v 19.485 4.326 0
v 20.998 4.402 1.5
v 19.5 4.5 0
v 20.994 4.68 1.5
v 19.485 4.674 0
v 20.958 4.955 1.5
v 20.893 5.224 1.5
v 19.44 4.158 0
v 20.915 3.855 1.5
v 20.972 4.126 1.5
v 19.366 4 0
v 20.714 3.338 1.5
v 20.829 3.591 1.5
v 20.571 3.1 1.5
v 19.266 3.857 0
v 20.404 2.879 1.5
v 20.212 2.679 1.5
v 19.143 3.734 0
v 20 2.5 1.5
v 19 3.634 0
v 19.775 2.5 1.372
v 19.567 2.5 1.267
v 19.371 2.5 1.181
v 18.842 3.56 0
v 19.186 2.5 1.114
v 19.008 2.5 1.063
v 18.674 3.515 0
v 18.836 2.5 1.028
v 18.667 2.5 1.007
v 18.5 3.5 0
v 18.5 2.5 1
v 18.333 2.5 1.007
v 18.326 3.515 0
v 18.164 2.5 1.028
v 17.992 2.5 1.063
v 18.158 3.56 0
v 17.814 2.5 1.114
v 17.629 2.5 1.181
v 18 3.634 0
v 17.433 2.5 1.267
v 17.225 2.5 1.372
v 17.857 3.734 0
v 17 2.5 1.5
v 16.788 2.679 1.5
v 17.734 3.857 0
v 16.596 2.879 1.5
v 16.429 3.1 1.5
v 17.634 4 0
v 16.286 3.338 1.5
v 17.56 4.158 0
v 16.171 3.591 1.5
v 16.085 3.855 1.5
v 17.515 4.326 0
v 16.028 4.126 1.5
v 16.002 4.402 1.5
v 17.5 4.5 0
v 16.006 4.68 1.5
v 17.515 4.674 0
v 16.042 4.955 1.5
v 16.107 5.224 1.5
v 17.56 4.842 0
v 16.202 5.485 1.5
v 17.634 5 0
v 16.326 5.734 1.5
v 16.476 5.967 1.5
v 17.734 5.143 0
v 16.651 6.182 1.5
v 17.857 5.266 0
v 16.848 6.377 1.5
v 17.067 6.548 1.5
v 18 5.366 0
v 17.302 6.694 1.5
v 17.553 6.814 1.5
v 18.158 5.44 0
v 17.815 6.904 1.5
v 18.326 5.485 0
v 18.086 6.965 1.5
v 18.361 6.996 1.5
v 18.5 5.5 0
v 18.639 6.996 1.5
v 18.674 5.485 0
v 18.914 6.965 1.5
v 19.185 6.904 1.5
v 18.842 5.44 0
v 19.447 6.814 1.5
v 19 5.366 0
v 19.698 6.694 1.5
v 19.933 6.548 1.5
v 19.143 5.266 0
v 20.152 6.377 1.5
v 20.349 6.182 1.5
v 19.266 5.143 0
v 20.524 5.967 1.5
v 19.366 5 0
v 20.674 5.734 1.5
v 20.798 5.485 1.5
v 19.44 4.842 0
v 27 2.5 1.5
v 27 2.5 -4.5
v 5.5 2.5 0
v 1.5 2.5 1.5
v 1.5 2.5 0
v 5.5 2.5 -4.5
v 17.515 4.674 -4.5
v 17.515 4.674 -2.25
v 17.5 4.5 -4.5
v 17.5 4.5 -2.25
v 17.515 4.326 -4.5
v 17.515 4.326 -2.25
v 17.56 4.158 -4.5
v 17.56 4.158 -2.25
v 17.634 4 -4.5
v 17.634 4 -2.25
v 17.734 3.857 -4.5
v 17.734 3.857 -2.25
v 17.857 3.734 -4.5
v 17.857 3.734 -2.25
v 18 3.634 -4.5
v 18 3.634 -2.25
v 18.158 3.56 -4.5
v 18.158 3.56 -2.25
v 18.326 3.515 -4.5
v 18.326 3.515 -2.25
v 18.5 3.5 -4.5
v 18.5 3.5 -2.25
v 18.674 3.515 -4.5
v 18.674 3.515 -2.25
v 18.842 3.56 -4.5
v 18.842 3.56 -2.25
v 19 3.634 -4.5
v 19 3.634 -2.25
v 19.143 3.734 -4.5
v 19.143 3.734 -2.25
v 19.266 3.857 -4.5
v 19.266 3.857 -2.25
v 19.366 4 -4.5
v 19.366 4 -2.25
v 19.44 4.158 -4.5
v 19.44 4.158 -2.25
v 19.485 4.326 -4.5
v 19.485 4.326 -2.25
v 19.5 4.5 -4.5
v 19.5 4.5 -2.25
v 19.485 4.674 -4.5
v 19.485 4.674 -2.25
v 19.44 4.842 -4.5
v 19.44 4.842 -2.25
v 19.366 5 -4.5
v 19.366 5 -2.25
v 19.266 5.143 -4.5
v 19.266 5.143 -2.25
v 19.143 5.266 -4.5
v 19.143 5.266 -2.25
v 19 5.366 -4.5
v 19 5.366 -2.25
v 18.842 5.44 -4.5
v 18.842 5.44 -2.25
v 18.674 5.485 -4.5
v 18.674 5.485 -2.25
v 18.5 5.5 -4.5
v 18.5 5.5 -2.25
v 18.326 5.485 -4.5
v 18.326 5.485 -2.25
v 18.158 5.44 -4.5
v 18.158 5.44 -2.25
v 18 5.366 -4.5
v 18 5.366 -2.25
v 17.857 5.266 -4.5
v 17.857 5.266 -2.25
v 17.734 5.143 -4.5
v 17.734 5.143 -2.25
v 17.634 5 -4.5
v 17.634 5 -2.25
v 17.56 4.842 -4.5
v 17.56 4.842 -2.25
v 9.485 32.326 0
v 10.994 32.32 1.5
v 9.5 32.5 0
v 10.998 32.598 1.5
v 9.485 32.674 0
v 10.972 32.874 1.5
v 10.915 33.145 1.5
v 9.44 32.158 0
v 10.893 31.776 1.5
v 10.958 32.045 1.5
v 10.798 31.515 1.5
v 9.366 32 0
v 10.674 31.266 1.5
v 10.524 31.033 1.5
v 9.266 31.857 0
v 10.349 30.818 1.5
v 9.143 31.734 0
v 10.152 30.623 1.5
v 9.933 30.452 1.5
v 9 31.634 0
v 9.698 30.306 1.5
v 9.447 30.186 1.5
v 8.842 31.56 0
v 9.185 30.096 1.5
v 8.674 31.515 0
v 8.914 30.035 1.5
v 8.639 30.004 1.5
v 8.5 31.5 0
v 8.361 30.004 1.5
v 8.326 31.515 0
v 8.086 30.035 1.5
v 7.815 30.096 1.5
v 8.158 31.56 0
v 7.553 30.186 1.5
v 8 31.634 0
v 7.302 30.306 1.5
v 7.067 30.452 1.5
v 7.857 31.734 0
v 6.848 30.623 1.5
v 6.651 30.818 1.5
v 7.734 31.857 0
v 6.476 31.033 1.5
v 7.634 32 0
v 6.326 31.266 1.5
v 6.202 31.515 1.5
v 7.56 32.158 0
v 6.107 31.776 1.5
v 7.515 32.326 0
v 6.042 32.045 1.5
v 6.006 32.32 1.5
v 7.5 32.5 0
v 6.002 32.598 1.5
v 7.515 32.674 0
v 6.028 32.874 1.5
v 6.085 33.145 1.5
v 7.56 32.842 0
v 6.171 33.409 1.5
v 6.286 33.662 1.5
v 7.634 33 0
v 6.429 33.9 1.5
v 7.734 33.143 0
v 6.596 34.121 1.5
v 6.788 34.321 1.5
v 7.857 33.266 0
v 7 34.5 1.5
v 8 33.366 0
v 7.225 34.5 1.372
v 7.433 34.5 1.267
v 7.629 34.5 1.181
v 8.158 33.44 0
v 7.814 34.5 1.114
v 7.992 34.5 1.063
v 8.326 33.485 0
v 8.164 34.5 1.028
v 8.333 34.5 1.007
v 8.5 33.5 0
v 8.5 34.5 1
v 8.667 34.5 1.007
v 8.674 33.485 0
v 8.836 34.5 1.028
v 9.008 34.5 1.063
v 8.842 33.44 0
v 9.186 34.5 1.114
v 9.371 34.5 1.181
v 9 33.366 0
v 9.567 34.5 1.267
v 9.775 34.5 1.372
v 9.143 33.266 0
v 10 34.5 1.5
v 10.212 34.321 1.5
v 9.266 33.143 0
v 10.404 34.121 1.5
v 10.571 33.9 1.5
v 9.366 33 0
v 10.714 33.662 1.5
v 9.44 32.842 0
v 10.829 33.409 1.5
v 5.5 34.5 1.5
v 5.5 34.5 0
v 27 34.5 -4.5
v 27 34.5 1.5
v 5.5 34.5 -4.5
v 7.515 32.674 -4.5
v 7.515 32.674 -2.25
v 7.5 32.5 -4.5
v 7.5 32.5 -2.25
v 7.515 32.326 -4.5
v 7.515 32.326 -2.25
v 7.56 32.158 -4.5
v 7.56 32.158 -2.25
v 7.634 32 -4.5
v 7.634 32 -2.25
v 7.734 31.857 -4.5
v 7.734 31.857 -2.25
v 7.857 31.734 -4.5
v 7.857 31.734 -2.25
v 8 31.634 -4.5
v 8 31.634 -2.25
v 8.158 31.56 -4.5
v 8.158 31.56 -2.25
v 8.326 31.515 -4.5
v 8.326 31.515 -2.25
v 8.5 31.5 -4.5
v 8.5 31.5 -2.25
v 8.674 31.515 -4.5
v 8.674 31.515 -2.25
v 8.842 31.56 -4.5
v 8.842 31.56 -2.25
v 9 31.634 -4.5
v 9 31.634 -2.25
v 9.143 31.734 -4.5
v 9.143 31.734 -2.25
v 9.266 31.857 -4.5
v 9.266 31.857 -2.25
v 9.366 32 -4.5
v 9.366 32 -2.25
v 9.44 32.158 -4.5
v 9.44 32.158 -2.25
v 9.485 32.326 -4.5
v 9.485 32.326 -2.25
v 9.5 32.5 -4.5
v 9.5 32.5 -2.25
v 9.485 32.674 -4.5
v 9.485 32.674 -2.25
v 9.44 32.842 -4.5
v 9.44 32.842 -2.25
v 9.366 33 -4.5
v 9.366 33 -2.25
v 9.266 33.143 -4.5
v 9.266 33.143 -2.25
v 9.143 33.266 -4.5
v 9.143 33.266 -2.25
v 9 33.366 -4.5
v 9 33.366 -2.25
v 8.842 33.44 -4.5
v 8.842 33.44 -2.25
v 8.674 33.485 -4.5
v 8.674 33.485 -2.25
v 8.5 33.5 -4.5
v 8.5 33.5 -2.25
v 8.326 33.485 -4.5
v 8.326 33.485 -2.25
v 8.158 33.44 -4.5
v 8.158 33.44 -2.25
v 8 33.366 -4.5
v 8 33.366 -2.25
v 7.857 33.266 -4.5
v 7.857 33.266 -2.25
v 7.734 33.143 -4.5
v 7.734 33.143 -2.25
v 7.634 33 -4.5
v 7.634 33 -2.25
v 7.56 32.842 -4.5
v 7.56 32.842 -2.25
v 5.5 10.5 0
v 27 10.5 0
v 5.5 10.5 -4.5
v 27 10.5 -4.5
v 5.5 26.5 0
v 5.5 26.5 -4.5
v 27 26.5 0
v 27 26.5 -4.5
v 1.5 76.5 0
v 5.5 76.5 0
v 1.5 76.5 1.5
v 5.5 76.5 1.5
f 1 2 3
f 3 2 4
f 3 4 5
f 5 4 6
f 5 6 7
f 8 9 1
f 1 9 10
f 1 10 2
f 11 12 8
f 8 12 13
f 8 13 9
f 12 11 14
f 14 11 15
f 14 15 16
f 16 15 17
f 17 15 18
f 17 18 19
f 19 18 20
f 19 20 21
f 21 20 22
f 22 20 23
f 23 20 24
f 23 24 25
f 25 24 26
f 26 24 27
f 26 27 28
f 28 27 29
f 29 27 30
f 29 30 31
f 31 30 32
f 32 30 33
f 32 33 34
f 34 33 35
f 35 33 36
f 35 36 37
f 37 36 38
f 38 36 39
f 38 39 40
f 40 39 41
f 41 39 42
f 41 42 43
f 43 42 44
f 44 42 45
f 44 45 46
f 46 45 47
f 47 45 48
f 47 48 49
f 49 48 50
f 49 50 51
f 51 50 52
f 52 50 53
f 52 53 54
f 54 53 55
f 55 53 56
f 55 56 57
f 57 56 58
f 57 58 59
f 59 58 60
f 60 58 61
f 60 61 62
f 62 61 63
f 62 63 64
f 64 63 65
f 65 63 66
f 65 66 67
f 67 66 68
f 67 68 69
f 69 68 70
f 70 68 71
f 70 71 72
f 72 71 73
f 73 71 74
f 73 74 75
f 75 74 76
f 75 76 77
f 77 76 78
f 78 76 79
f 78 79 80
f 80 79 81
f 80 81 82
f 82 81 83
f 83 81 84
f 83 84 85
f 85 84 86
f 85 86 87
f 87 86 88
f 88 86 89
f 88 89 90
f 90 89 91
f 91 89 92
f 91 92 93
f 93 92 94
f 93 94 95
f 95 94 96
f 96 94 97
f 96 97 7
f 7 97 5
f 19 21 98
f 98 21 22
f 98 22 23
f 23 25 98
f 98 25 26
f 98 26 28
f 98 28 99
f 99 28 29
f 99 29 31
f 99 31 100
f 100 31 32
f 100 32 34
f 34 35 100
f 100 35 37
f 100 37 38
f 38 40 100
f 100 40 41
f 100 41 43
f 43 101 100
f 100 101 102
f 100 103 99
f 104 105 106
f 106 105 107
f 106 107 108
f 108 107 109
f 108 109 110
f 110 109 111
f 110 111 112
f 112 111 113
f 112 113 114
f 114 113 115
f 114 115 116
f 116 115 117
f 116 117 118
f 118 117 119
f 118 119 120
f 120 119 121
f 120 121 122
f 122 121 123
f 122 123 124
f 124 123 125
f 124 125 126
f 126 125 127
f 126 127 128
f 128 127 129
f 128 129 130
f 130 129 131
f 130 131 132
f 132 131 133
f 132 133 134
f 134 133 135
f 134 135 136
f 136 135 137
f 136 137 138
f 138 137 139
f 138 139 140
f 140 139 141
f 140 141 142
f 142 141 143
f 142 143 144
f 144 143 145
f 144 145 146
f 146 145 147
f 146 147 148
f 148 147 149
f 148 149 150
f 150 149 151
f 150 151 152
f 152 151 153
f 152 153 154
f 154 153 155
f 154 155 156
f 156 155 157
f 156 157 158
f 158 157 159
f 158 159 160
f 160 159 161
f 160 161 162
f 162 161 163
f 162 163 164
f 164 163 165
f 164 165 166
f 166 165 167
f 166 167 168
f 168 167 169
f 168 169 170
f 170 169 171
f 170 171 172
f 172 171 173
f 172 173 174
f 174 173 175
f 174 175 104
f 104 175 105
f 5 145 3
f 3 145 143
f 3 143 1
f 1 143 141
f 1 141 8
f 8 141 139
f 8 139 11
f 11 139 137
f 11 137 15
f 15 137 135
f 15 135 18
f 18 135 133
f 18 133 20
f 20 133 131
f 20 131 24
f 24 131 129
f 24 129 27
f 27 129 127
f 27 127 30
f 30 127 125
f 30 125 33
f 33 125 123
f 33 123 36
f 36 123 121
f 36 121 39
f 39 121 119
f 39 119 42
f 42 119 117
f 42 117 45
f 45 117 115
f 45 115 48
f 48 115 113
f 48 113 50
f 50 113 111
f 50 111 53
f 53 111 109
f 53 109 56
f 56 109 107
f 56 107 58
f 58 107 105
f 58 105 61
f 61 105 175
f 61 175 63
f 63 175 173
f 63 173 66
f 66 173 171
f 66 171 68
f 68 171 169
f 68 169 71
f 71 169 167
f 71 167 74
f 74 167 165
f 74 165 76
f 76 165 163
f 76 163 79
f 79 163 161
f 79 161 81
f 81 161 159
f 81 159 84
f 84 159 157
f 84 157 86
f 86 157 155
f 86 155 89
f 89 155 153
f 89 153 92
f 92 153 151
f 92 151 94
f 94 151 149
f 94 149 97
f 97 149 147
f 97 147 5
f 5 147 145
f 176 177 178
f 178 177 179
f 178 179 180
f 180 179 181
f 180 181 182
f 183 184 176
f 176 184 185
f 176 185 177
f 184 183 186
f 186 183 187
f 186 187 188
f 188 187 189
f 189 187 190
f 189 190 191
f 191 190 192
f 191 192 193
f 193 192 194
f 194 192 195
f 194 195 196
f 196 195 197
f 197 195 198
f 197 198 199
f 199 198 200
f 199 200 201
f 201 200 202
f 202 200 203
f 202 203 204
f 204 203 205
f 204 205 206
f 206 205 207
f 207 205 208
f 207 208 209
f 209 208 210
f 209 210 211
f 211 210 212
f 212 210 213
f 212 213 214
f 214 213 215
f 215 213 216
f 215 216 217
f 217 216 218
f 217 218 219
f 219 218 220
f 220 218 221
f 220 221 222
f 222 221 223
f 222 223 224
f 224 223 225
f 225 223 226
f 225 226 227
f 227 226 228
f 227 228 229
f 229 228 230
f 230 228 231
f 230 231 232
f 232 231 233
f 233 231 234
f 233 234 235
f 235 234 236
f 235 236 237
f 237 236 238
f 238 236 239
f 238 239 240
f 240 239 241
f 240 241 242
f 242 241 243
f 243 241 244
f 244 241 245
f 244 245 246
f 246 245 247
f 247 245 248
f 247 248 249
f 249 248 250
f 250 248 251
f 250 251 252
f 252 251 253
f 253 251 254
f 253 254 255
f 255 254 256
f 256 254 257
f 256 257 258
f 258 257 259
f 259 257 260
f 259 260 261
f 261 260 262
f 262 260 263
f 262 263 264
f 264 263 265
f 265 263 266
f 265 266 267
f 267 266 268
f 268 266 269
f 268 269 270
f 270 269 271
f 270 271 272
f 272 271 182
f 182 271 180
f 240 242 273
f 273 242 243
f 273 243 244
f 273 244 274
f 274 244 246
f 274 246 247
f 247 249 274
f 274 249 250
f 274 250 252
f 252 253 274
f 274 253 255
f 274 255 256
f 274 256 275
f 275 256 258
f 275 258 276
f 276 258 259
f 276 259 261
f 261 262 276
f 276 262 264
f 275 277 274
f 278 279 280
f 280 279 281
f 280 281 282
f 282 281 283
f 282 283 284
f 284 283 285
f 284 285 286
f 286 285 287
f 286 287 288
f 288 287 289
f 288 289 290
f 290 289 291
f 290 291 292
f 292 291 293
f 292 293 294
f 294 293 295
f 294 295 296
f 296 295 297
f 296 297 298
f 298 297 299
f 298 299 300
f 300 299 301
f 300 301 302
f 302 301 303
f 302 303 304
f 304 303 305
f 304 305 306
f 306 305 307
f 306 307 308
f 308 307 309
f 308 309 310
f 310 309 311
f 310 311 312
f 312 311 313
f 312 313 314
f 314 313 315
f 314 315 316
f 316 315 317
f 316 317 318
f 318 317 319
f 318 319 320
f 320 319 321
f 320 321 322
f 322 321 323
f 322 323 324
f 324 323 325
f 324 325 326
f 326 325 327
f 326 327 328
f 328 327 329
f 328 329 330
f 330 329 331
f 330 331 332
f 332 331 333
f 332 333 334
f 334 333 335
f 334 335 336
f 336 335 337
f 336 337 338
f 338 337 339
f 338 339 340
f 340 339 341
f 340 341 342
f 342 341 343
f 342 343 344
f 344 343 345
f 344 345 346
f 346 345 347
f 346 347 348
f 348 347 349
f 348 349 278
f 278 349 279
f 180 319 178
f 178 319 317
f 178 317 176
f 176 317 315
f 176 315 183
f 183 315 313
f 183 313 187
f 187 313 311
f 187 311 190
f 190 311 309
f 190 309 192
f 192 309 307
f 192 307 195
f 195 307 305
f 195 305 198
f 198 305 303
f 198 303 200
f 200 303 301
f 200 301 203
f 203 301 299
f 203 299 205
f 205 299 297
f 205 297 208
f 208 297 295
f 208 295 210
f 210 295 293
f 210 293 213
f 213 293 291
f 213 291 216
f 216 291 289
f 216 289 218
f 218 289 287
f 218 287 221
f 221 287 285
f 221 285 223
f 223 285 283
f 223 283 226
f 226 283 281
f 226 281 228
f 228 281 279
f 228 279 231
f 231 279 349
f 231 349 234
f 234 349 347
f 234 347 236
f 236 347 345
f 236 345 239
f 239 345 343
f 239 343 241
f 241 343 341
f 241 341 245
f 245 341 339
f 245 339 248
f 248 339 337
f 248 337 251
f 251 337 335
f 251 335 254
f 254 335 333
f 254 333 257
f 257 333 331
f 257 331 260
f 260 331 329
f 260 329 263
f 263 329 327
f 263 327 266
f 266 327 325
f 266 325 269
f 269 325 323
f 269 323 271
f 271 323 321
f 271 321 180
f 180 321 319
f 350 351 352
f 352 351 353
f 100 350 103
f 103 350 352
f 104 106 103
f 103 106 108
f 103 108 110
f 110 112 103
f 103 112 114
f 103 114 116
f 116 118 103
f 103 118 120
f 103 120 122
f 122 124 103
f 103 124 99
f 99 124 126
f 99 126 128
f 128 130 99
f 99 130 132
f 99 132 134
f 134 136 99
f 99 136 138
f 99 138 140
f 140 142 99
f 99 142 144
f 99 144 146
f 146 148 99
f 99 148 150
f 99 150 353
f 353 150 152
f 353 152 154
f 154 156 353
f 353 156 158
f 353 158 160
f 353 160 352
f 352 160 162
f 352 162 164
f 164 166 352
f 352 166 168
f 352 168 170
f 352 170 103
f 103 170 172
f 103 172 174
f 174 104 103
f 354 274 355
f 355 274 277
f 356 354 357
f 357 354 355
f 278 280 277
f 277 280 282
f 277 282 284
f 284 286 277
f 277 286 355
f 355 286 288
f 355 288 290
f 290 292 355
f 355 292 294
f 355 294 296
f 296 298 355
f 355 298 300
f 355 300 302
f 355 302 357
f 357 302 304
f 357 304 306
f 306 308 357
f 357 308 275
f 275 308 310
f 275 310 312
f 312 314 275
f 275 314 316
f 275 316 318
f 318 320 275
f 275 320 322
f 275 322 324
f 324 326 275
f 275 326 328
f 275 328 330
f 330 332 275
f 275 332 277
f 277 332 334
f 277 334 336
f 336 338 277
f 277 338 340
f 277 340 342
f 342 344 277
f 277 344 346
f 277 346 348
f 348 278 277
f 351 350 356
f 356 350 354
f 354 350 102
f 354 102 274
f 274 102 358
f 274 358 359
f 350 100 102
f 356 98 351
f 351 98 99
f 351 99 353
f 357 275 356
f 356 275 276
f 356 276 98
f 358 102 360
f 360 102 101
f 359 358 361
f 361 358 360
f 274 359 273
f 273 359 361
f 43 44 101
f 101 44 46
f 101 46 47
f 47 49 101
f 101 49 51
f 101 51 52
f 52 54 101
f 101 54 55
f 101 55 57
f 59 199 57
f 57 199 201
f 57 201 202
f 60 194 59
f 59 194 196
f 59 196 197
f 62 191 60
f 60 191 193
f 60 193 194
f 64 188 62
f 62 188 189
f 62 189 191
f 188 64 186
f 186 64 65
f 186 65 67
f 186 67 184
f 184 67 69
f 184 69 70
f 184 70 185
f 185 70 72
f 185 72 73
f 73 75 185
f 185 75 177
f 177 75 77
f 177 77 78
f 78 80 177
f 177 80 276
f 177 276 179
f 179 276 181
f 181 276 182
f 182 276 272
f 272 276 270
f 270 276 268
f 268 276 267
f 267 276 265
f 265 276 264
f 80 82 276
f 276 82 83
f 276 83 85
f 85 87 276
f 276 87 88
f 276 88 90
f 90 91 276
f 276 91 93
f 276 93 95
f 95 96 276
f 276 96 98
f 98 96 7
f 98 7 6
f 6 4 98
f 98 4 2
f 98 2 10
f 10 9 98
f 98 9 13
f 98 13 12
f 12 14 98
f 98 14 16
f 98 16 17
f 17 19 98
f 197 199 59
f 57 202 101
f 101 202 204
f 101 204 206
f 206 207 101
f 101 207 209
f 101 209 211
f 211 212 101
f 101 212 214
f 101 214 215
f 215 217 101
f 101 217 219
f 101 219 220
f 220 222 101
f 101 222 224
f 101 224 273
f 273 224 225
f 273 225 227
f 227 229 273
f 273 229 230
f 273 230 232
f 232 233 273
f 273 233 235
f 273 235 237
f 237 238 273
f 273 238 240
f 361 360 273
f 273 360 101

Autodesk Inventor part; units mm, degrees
ref_plane "YZ Plane" through (0, 0, 0) normal (1, 0, 0) x (0, 1, 0)
ref_plane "XZ Plane" through (0, 0, 0) normal (0, 1, 0) x (-1, 0, 0)
ref_plane "XY Plane" through (0, 0, 0) normal (0, 0, 1) x (1, 0, 0)
sketch "Sketch1" plane through (0, 0, 0) normal (0, 0, 1) x (1, 0, 0)
  line L0 (5.5, 34.5) -> (27, 34.5)
  line L1 (1.5, 2.5) -> (27, 2.5)
  line L2 (27, 2.5) -> (27, 34.5)
  line L3 (27, 34.5) -> (5.5, 34.5)
  line L4 (1.5, 35.5) -> (1.5, 2.5)
  line L5 (1.5, 76.5) -> (5.5, 76.5)
  line L6 (1.5, 2.5) -> (5.5, 2.5)
  line L7 (5.5, 34.5) -> (5.5, 76.5)
  line L8 (5.5, 76.5) -> (1.5, 76.5)
  line L9 (1.5, 76.5) -> (1.5, 2.5)
  point P0 (0, 0)
  dimension "d0" = 32
  dimension "d2" = 21.5
  dimension "d3" = 42
  dimension "d17" = 4
extrude "Extrusion1" add sketch "Sketch1" along normal blind 1.5
sketch "Sketch2" plane through (0, 0, 0) normal (0, 0, -1) x (-1, 0, 0)
  line L0 (-27, 2.5) -> (-27, 34.5) projected
  line L1 (-27, 34.5) -> (-5.5, 34.5)
  line L2 (-5.5, 34.5) -> (-5.5, 26.5)
  line L3 (-5.5, 26.5) -> (-27, 26.5)
  line L4 (-27, 26.5) -> (-27, 34.5)
  line L5 (-1.5, 2.5) -> (-27, 2.5) projected
  line L6 (-27, 2.5) -> (-5.5, 2.5)
  line L7 (-5.5, 2.5) -> (-5.5, 10.5)
  line L8 (-5.5, 10.5) -> (-27, 10.5)
  line L9 (-27, 10.5) -> (-27, 2.5)
  point P0 (0, 0)
  point P1 (-27, 10.5)
  point P2 (-27, 26.5)
  dimension "d6" = 16
extrude "Extrusion2" add sketch "Sketch2" along normal blind 4.5
sketch "Sketch3" plane through (0, 0, 1.5) normal (0, 0, 1) x (1, 0, 0)
  circle A0 centre (8.5, 32.5) radius 1
  circle A1 centre (18.5, 4.5) radius 1
  line L0 (27, 2.5) -> (27, 34.5) projected
  line L1 (1.5, 2.5) -> (27, 2.5) projected
  line L2 (27, 34.5) -> (5.5, 34.5) projected
  point P0 (0, 0)
  dimension "d9" = 2
  dimension "d10" = 2
  dimension "d11" = 18.5
  dimension "d12" = 8.5
  dimension "d13" = 2
  dimension "d14" = 2
extrude "Extrusion3" cut sketch "Sketch3" against normal through all
chamfer "Chamfer1" distance 1.5 angle 45 2 edges at (7.5, 32.5, 1.5) (17.5, 4.5, 1.5)
properties part number "servoholder"
